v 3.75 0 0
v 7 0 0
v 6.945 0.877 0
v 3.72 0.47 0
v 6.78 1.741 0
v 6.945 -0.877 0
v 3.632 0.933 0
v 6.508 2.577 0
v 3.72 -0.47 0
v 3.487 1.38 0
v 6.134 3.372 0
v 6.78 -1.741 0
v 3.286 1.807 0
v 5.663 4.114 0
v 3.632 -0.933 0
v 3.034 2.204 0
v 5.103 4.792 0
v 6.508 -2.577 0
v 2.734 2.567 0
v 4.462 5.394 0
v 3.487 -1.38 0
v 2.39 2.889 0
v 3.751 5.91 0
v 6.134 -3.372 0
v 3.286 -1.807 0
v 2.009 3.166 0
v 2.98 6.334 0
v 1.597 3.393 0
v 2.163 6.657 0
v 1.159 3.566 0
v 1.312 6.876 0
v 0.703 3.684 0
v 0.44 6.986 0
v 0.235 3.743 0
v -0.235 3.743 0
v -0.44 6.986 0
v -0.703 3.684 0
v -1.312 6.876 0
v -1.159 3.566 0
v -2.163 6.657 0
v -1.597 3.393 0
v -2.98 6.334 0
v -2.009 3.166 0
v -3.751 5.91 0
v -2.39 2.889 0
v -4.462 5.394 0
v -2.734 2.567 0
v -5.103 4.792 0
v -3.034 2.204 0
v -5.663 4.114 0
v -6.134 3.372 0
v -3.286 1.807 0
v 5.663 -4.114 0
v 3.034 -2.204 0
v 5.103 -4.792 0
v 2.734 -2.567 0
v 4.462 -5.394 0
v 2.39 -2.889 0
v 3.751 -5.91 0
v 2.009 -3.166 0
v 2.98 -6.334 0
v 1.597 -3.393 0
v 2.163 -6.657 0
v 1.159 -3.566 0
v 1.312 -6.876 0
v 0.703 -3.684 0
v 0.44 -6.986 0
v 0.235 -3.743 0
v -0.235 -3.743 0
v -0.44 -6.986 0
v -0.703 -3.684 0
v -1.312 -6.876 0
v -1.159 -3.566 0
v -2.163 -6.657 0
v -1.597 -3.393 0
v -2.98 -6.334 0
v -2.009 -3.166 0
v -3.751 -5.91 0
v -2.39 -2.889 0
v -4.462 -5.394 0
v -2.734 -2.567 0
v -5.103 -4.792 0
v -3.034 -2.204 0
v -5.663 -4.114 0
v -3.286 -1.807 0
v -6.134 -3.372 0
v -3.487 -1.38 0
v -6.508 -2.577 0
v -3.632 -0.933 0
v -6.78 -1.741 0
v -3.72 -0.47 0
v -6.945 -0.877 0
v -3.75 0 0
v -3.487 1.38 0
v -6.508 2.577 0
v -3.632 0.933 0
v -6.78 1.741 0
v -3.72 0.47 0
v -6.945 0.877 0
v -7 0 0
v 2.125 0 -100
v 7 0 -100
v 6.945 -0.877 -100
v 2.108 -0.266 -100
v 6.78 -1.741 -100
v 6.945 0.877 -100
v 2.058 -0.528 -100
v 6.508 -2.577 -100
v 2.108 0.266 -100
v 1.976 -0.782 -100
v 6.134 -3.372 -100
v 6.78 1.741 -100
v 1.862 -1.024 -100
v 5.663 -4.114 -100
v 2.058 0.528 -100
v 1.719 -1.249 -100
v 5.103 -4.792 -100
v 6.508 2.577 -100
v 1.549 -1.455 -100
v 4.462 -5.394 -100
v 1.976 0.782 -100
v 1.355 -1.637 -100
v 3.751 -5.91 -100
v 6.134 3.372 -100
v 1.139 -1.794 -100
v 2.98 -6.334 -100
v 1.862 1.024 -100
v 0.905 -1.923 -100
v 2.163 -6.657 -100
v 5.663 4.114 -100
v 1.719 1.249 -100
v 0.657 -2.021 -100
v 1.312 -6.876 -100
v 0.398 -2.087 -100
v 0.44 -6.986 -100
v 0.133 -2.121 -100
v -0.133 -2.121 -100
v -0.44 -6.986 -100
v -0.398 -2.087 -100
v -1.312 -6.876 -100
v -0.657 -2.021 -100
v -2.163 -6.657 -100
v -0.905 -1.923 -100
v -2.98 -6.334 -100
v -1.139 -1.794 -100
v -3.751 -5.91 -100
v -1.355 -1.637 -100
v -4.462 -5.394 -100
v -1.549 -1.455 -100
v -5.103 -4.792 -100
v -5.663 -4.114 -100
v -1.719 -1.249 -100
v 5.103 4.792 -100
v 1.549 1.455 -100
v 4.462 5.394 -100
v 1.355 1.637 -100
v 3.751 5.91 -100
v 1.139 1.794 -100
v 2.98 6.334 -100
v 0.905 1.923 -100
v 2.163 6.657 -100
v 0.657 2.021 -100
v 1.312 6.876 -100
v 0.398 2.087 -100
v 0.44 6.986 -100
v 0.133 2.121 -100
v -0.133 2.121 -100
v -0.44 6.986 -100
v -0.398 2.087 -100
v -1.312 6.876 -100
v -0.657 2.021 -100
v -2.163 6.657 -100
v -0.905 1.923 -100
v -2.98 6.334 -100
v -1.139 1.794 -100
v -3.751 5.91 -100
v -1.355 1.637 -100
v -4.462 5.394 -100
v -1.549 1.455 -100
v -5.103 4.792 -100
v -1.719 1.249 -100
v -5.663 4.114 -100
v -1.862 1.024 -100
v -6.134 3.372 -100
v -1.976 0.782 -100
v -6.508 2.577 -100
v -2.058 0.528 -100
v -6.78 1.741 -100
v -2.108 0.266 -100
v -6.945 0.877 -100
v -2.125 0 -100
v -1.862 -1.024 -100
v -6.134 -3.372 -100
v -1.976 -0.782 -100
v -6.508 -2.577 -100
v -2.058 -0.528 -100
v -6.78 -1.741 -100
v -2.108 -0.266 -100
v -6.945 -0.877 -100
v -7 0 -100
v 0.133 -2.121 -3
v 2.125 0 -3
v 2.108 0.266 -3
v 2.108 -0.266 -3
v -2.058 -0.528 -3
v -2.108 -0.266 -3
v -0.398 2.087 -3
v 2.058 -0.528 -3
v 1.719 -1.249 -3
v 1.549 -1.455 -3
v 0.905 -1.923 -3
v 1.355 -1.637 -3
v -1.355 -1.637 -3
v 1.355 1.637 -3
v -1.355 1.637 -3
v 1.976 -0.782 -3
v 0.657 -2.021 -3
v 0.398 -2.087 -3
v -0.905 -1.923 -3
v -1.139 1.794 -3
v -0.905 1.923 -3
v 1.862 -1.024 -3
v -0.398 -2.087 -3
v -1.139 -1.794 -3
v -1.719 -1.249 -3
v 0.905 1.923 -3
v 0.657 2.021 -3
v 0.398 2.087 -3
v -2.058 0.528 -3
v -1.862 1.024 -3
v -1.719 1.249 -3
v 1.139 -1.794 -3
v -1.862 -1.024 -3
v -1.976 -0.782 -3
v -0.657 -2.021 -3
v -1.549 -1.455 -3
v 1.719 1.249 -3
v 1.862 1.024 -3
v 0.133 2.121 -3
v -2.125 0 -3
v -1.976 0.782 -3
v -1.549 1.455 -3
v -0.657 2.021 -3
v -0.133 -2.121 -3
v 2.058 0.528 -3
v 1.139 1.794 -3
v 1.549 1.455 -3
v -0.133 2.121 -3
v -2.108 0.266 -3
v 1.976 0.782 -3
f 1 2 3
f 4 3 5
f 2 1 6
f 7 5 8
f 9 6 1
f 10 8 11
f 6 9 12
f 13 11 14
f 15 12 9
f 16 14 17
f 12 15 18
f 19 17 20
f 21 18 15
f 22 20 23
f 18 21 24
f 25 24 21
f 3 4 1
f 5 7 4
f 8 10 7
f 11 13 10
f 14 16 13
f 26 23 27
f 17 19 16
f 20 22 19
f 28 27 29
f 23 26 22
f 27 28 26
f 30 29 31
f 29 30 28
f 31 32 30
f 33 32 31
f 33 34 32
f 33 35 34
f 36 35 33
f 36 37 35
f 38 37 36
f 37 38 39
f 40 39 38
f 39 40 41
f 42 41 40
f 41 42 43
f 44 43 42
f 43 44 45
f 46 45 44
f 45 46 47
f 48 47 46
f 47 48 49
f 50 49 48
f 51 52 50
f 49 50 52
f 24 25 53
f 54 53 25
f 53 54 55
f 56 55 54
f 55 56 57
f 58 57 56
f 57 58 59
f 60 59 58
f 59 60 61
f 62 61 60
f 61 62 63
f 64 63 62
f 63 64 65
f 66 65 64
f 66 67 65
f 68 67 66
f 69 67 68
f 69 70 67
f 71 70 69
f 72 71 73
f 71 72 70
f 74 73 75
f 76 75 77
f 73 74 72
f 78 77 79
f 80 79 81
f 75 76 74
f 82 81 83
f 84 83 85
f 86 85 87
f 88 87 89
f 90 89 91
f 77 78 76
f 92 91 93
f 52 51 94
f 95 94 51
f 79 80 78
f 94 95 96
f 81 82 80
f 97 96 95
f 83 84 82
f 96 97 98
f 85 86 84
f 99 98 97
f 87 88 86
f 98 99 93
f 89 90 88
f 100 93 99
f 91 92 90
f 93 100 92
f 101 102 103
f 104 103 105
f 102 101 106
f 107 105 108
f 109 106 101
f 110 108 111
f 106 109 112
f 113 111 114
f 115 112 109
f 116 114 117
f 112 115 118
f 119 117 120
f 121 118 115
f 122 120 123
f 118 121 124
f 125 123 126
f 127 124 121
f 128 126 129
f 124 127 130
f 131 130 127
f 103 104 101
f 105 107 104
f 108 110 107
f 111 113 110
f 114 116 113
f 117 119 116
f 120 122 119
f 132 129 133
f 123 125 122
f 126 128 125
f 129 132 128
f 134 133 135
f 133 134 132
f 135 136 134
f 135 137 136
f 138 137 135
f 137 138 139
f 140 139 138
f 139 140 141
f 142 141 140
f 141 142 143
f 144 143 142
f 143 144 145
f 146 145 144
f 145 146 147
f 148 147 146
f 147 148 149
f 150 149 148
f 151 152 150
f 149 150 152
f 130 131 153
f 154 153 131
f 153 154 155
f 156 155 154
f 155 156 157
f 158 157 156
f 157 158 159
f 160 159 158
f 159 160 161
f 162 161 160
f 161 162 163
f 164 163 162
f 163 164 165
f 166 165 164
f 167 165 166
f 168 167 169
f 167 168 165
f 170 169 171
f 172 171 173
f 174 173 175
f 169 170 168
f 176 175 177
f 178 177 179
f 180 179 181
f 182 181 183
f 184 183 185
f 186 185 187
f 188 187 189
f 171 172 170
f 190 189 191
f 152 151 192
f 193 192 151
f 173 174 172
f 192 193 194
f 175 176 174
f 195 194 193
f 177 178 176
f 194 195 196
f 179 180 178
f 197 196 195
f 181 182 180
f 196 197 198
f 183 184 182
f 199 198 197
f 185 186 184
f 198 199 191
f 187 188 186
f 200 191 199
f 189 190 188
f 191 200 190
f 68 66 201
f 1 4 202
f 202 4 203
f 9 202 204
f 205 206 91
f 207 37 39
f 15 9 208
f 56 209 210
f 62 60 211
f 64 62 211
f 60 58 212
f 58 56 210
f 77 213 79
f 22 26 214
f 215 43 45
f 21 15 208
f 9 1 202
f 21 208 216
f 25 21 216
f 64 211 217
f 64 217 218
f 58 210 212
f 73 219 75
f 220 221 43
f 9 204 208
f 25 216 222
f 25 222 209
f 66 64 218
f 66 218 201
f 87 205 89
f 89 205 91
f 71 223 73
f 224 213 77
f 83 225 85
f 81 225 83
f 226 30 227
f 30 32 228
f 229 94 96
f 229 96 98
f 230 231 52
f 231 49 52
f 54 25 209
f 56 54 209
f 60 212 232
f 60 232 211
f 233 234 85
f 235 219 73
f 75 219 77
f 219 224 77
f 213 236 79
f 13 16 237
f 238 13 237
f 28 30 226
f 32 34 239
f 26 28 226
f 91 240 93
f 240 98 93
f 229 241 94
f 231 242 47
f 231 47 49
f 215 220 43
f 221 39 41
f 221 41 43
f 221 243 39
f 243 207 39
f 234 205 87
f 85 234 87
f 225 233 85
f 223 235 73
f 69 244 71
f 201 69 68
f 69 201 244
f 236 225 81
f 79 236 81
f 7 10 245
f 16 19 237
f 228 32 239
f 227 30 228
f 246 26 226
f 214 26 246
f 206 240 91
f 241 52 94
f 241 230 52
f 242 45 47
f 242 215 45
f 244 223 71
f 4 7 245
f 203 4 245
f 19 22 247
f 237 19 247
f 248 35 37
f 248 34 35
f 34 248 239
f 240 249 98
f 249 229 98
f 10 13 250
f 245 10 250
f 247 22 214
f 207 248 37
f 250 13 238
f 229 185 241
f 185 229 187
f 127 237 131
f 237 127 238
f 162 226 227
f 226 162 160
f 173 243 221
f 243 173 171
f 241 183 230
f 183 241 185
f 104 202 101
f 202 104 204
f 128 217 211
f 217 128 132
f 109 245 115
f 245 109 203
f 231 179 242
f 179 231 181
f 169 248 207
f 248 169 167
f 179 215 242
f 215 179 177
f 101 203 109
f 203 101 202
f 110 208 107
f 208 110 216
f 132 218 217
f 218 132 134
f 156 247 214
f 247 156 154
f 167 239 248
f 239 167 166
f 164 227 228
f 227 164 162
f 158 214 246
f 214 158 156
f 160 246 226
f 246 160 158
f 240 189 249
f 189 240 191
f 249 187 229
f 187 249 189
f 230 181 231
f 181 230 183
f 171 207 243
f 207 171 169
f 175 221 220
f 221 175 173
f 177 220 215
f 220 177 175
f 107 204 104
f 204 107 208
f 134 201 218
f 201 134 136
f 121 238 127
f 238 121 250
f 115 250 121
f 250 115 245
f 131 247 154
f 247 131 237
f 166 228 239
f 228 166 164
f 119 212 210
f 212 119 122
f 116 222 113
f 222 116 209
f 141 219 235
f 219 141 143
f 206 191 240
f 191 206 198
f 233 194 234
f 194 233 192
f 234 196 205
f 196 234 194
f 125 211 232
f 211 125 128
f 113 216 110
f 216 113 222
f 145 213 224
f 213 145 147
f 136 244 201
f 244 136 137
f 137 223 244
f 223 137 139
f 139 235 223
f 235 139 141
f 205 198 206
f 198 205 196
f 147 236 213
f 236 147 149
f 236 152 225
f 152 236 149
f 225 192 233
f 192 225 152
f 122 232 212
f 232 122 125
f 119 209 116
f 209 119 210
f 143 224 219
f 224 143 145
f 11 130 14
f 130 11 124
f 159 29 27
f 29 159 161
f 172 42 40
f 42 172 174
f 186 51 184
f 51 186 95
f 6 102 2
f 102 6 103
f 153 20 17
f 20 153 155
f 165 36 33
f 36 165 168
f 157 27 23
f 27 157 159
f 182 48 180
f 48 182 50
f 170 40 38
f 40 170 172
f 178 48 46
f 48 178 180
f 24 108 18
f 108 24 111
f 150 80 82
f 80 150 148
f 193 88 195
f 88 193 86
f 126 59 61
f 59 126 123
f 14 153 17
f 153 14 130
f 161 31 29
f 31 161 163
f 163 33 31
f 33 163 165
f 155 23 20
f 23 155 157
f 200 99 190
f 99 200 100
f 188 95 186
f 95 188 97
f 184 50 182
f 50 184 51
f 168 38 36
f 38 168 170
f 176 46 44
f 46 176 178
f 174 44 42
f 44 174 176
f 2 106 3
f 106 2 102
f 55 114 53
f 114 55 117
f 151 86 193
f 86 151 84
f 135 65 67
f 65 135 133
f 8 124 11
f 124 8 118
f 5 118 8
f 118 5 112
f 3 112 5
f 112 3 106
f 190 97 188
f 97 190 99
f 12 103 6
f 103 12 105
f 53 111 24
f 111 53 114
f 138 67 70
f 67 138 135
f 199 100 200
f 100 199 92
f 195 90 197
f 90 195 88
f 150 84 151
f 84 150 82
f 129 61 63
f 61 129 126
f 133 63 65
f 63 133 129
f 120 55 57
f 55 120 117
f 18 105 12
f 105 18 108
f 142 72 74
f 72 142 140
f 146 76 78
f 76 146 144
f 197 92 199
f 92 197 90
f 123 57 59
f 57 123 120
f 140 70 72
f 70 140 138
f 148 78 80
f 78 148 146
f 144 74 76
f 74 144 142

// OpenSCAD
$fn = 50;


difference() {
	union() {
		translate(v = [0, 0, -100.0000000000]) {
			cylinder(h = 100, r = 7.0000000000);
		}
	}
	union() {
		translate(v = [0, 0, 0]) {
			rotate(a = [0, 0, 0]) {
				difference() {
					union() {
						#translate(v = [0, 0, -100.0000000000]) {
							cylinder(h = 100, r = 2.0000000000);
						}
						#translate(v = [0, 0, -3]) {
							cylinder(h = 3, r = 7.0000000000, r1 = 2.1250000000, r2 = 3.7500000000);
						}
						#translate(v = [0, 0, -100.0000000000]) {
							cylinder(h = 100, r = 2.1250000000);
						}
						#translate(v = [0, 0, -100.0000000000]) {
							cylinder(h = 100, r = 2.0000000000);
						}
					}
					union();
				}
			}
		}
	}
}
